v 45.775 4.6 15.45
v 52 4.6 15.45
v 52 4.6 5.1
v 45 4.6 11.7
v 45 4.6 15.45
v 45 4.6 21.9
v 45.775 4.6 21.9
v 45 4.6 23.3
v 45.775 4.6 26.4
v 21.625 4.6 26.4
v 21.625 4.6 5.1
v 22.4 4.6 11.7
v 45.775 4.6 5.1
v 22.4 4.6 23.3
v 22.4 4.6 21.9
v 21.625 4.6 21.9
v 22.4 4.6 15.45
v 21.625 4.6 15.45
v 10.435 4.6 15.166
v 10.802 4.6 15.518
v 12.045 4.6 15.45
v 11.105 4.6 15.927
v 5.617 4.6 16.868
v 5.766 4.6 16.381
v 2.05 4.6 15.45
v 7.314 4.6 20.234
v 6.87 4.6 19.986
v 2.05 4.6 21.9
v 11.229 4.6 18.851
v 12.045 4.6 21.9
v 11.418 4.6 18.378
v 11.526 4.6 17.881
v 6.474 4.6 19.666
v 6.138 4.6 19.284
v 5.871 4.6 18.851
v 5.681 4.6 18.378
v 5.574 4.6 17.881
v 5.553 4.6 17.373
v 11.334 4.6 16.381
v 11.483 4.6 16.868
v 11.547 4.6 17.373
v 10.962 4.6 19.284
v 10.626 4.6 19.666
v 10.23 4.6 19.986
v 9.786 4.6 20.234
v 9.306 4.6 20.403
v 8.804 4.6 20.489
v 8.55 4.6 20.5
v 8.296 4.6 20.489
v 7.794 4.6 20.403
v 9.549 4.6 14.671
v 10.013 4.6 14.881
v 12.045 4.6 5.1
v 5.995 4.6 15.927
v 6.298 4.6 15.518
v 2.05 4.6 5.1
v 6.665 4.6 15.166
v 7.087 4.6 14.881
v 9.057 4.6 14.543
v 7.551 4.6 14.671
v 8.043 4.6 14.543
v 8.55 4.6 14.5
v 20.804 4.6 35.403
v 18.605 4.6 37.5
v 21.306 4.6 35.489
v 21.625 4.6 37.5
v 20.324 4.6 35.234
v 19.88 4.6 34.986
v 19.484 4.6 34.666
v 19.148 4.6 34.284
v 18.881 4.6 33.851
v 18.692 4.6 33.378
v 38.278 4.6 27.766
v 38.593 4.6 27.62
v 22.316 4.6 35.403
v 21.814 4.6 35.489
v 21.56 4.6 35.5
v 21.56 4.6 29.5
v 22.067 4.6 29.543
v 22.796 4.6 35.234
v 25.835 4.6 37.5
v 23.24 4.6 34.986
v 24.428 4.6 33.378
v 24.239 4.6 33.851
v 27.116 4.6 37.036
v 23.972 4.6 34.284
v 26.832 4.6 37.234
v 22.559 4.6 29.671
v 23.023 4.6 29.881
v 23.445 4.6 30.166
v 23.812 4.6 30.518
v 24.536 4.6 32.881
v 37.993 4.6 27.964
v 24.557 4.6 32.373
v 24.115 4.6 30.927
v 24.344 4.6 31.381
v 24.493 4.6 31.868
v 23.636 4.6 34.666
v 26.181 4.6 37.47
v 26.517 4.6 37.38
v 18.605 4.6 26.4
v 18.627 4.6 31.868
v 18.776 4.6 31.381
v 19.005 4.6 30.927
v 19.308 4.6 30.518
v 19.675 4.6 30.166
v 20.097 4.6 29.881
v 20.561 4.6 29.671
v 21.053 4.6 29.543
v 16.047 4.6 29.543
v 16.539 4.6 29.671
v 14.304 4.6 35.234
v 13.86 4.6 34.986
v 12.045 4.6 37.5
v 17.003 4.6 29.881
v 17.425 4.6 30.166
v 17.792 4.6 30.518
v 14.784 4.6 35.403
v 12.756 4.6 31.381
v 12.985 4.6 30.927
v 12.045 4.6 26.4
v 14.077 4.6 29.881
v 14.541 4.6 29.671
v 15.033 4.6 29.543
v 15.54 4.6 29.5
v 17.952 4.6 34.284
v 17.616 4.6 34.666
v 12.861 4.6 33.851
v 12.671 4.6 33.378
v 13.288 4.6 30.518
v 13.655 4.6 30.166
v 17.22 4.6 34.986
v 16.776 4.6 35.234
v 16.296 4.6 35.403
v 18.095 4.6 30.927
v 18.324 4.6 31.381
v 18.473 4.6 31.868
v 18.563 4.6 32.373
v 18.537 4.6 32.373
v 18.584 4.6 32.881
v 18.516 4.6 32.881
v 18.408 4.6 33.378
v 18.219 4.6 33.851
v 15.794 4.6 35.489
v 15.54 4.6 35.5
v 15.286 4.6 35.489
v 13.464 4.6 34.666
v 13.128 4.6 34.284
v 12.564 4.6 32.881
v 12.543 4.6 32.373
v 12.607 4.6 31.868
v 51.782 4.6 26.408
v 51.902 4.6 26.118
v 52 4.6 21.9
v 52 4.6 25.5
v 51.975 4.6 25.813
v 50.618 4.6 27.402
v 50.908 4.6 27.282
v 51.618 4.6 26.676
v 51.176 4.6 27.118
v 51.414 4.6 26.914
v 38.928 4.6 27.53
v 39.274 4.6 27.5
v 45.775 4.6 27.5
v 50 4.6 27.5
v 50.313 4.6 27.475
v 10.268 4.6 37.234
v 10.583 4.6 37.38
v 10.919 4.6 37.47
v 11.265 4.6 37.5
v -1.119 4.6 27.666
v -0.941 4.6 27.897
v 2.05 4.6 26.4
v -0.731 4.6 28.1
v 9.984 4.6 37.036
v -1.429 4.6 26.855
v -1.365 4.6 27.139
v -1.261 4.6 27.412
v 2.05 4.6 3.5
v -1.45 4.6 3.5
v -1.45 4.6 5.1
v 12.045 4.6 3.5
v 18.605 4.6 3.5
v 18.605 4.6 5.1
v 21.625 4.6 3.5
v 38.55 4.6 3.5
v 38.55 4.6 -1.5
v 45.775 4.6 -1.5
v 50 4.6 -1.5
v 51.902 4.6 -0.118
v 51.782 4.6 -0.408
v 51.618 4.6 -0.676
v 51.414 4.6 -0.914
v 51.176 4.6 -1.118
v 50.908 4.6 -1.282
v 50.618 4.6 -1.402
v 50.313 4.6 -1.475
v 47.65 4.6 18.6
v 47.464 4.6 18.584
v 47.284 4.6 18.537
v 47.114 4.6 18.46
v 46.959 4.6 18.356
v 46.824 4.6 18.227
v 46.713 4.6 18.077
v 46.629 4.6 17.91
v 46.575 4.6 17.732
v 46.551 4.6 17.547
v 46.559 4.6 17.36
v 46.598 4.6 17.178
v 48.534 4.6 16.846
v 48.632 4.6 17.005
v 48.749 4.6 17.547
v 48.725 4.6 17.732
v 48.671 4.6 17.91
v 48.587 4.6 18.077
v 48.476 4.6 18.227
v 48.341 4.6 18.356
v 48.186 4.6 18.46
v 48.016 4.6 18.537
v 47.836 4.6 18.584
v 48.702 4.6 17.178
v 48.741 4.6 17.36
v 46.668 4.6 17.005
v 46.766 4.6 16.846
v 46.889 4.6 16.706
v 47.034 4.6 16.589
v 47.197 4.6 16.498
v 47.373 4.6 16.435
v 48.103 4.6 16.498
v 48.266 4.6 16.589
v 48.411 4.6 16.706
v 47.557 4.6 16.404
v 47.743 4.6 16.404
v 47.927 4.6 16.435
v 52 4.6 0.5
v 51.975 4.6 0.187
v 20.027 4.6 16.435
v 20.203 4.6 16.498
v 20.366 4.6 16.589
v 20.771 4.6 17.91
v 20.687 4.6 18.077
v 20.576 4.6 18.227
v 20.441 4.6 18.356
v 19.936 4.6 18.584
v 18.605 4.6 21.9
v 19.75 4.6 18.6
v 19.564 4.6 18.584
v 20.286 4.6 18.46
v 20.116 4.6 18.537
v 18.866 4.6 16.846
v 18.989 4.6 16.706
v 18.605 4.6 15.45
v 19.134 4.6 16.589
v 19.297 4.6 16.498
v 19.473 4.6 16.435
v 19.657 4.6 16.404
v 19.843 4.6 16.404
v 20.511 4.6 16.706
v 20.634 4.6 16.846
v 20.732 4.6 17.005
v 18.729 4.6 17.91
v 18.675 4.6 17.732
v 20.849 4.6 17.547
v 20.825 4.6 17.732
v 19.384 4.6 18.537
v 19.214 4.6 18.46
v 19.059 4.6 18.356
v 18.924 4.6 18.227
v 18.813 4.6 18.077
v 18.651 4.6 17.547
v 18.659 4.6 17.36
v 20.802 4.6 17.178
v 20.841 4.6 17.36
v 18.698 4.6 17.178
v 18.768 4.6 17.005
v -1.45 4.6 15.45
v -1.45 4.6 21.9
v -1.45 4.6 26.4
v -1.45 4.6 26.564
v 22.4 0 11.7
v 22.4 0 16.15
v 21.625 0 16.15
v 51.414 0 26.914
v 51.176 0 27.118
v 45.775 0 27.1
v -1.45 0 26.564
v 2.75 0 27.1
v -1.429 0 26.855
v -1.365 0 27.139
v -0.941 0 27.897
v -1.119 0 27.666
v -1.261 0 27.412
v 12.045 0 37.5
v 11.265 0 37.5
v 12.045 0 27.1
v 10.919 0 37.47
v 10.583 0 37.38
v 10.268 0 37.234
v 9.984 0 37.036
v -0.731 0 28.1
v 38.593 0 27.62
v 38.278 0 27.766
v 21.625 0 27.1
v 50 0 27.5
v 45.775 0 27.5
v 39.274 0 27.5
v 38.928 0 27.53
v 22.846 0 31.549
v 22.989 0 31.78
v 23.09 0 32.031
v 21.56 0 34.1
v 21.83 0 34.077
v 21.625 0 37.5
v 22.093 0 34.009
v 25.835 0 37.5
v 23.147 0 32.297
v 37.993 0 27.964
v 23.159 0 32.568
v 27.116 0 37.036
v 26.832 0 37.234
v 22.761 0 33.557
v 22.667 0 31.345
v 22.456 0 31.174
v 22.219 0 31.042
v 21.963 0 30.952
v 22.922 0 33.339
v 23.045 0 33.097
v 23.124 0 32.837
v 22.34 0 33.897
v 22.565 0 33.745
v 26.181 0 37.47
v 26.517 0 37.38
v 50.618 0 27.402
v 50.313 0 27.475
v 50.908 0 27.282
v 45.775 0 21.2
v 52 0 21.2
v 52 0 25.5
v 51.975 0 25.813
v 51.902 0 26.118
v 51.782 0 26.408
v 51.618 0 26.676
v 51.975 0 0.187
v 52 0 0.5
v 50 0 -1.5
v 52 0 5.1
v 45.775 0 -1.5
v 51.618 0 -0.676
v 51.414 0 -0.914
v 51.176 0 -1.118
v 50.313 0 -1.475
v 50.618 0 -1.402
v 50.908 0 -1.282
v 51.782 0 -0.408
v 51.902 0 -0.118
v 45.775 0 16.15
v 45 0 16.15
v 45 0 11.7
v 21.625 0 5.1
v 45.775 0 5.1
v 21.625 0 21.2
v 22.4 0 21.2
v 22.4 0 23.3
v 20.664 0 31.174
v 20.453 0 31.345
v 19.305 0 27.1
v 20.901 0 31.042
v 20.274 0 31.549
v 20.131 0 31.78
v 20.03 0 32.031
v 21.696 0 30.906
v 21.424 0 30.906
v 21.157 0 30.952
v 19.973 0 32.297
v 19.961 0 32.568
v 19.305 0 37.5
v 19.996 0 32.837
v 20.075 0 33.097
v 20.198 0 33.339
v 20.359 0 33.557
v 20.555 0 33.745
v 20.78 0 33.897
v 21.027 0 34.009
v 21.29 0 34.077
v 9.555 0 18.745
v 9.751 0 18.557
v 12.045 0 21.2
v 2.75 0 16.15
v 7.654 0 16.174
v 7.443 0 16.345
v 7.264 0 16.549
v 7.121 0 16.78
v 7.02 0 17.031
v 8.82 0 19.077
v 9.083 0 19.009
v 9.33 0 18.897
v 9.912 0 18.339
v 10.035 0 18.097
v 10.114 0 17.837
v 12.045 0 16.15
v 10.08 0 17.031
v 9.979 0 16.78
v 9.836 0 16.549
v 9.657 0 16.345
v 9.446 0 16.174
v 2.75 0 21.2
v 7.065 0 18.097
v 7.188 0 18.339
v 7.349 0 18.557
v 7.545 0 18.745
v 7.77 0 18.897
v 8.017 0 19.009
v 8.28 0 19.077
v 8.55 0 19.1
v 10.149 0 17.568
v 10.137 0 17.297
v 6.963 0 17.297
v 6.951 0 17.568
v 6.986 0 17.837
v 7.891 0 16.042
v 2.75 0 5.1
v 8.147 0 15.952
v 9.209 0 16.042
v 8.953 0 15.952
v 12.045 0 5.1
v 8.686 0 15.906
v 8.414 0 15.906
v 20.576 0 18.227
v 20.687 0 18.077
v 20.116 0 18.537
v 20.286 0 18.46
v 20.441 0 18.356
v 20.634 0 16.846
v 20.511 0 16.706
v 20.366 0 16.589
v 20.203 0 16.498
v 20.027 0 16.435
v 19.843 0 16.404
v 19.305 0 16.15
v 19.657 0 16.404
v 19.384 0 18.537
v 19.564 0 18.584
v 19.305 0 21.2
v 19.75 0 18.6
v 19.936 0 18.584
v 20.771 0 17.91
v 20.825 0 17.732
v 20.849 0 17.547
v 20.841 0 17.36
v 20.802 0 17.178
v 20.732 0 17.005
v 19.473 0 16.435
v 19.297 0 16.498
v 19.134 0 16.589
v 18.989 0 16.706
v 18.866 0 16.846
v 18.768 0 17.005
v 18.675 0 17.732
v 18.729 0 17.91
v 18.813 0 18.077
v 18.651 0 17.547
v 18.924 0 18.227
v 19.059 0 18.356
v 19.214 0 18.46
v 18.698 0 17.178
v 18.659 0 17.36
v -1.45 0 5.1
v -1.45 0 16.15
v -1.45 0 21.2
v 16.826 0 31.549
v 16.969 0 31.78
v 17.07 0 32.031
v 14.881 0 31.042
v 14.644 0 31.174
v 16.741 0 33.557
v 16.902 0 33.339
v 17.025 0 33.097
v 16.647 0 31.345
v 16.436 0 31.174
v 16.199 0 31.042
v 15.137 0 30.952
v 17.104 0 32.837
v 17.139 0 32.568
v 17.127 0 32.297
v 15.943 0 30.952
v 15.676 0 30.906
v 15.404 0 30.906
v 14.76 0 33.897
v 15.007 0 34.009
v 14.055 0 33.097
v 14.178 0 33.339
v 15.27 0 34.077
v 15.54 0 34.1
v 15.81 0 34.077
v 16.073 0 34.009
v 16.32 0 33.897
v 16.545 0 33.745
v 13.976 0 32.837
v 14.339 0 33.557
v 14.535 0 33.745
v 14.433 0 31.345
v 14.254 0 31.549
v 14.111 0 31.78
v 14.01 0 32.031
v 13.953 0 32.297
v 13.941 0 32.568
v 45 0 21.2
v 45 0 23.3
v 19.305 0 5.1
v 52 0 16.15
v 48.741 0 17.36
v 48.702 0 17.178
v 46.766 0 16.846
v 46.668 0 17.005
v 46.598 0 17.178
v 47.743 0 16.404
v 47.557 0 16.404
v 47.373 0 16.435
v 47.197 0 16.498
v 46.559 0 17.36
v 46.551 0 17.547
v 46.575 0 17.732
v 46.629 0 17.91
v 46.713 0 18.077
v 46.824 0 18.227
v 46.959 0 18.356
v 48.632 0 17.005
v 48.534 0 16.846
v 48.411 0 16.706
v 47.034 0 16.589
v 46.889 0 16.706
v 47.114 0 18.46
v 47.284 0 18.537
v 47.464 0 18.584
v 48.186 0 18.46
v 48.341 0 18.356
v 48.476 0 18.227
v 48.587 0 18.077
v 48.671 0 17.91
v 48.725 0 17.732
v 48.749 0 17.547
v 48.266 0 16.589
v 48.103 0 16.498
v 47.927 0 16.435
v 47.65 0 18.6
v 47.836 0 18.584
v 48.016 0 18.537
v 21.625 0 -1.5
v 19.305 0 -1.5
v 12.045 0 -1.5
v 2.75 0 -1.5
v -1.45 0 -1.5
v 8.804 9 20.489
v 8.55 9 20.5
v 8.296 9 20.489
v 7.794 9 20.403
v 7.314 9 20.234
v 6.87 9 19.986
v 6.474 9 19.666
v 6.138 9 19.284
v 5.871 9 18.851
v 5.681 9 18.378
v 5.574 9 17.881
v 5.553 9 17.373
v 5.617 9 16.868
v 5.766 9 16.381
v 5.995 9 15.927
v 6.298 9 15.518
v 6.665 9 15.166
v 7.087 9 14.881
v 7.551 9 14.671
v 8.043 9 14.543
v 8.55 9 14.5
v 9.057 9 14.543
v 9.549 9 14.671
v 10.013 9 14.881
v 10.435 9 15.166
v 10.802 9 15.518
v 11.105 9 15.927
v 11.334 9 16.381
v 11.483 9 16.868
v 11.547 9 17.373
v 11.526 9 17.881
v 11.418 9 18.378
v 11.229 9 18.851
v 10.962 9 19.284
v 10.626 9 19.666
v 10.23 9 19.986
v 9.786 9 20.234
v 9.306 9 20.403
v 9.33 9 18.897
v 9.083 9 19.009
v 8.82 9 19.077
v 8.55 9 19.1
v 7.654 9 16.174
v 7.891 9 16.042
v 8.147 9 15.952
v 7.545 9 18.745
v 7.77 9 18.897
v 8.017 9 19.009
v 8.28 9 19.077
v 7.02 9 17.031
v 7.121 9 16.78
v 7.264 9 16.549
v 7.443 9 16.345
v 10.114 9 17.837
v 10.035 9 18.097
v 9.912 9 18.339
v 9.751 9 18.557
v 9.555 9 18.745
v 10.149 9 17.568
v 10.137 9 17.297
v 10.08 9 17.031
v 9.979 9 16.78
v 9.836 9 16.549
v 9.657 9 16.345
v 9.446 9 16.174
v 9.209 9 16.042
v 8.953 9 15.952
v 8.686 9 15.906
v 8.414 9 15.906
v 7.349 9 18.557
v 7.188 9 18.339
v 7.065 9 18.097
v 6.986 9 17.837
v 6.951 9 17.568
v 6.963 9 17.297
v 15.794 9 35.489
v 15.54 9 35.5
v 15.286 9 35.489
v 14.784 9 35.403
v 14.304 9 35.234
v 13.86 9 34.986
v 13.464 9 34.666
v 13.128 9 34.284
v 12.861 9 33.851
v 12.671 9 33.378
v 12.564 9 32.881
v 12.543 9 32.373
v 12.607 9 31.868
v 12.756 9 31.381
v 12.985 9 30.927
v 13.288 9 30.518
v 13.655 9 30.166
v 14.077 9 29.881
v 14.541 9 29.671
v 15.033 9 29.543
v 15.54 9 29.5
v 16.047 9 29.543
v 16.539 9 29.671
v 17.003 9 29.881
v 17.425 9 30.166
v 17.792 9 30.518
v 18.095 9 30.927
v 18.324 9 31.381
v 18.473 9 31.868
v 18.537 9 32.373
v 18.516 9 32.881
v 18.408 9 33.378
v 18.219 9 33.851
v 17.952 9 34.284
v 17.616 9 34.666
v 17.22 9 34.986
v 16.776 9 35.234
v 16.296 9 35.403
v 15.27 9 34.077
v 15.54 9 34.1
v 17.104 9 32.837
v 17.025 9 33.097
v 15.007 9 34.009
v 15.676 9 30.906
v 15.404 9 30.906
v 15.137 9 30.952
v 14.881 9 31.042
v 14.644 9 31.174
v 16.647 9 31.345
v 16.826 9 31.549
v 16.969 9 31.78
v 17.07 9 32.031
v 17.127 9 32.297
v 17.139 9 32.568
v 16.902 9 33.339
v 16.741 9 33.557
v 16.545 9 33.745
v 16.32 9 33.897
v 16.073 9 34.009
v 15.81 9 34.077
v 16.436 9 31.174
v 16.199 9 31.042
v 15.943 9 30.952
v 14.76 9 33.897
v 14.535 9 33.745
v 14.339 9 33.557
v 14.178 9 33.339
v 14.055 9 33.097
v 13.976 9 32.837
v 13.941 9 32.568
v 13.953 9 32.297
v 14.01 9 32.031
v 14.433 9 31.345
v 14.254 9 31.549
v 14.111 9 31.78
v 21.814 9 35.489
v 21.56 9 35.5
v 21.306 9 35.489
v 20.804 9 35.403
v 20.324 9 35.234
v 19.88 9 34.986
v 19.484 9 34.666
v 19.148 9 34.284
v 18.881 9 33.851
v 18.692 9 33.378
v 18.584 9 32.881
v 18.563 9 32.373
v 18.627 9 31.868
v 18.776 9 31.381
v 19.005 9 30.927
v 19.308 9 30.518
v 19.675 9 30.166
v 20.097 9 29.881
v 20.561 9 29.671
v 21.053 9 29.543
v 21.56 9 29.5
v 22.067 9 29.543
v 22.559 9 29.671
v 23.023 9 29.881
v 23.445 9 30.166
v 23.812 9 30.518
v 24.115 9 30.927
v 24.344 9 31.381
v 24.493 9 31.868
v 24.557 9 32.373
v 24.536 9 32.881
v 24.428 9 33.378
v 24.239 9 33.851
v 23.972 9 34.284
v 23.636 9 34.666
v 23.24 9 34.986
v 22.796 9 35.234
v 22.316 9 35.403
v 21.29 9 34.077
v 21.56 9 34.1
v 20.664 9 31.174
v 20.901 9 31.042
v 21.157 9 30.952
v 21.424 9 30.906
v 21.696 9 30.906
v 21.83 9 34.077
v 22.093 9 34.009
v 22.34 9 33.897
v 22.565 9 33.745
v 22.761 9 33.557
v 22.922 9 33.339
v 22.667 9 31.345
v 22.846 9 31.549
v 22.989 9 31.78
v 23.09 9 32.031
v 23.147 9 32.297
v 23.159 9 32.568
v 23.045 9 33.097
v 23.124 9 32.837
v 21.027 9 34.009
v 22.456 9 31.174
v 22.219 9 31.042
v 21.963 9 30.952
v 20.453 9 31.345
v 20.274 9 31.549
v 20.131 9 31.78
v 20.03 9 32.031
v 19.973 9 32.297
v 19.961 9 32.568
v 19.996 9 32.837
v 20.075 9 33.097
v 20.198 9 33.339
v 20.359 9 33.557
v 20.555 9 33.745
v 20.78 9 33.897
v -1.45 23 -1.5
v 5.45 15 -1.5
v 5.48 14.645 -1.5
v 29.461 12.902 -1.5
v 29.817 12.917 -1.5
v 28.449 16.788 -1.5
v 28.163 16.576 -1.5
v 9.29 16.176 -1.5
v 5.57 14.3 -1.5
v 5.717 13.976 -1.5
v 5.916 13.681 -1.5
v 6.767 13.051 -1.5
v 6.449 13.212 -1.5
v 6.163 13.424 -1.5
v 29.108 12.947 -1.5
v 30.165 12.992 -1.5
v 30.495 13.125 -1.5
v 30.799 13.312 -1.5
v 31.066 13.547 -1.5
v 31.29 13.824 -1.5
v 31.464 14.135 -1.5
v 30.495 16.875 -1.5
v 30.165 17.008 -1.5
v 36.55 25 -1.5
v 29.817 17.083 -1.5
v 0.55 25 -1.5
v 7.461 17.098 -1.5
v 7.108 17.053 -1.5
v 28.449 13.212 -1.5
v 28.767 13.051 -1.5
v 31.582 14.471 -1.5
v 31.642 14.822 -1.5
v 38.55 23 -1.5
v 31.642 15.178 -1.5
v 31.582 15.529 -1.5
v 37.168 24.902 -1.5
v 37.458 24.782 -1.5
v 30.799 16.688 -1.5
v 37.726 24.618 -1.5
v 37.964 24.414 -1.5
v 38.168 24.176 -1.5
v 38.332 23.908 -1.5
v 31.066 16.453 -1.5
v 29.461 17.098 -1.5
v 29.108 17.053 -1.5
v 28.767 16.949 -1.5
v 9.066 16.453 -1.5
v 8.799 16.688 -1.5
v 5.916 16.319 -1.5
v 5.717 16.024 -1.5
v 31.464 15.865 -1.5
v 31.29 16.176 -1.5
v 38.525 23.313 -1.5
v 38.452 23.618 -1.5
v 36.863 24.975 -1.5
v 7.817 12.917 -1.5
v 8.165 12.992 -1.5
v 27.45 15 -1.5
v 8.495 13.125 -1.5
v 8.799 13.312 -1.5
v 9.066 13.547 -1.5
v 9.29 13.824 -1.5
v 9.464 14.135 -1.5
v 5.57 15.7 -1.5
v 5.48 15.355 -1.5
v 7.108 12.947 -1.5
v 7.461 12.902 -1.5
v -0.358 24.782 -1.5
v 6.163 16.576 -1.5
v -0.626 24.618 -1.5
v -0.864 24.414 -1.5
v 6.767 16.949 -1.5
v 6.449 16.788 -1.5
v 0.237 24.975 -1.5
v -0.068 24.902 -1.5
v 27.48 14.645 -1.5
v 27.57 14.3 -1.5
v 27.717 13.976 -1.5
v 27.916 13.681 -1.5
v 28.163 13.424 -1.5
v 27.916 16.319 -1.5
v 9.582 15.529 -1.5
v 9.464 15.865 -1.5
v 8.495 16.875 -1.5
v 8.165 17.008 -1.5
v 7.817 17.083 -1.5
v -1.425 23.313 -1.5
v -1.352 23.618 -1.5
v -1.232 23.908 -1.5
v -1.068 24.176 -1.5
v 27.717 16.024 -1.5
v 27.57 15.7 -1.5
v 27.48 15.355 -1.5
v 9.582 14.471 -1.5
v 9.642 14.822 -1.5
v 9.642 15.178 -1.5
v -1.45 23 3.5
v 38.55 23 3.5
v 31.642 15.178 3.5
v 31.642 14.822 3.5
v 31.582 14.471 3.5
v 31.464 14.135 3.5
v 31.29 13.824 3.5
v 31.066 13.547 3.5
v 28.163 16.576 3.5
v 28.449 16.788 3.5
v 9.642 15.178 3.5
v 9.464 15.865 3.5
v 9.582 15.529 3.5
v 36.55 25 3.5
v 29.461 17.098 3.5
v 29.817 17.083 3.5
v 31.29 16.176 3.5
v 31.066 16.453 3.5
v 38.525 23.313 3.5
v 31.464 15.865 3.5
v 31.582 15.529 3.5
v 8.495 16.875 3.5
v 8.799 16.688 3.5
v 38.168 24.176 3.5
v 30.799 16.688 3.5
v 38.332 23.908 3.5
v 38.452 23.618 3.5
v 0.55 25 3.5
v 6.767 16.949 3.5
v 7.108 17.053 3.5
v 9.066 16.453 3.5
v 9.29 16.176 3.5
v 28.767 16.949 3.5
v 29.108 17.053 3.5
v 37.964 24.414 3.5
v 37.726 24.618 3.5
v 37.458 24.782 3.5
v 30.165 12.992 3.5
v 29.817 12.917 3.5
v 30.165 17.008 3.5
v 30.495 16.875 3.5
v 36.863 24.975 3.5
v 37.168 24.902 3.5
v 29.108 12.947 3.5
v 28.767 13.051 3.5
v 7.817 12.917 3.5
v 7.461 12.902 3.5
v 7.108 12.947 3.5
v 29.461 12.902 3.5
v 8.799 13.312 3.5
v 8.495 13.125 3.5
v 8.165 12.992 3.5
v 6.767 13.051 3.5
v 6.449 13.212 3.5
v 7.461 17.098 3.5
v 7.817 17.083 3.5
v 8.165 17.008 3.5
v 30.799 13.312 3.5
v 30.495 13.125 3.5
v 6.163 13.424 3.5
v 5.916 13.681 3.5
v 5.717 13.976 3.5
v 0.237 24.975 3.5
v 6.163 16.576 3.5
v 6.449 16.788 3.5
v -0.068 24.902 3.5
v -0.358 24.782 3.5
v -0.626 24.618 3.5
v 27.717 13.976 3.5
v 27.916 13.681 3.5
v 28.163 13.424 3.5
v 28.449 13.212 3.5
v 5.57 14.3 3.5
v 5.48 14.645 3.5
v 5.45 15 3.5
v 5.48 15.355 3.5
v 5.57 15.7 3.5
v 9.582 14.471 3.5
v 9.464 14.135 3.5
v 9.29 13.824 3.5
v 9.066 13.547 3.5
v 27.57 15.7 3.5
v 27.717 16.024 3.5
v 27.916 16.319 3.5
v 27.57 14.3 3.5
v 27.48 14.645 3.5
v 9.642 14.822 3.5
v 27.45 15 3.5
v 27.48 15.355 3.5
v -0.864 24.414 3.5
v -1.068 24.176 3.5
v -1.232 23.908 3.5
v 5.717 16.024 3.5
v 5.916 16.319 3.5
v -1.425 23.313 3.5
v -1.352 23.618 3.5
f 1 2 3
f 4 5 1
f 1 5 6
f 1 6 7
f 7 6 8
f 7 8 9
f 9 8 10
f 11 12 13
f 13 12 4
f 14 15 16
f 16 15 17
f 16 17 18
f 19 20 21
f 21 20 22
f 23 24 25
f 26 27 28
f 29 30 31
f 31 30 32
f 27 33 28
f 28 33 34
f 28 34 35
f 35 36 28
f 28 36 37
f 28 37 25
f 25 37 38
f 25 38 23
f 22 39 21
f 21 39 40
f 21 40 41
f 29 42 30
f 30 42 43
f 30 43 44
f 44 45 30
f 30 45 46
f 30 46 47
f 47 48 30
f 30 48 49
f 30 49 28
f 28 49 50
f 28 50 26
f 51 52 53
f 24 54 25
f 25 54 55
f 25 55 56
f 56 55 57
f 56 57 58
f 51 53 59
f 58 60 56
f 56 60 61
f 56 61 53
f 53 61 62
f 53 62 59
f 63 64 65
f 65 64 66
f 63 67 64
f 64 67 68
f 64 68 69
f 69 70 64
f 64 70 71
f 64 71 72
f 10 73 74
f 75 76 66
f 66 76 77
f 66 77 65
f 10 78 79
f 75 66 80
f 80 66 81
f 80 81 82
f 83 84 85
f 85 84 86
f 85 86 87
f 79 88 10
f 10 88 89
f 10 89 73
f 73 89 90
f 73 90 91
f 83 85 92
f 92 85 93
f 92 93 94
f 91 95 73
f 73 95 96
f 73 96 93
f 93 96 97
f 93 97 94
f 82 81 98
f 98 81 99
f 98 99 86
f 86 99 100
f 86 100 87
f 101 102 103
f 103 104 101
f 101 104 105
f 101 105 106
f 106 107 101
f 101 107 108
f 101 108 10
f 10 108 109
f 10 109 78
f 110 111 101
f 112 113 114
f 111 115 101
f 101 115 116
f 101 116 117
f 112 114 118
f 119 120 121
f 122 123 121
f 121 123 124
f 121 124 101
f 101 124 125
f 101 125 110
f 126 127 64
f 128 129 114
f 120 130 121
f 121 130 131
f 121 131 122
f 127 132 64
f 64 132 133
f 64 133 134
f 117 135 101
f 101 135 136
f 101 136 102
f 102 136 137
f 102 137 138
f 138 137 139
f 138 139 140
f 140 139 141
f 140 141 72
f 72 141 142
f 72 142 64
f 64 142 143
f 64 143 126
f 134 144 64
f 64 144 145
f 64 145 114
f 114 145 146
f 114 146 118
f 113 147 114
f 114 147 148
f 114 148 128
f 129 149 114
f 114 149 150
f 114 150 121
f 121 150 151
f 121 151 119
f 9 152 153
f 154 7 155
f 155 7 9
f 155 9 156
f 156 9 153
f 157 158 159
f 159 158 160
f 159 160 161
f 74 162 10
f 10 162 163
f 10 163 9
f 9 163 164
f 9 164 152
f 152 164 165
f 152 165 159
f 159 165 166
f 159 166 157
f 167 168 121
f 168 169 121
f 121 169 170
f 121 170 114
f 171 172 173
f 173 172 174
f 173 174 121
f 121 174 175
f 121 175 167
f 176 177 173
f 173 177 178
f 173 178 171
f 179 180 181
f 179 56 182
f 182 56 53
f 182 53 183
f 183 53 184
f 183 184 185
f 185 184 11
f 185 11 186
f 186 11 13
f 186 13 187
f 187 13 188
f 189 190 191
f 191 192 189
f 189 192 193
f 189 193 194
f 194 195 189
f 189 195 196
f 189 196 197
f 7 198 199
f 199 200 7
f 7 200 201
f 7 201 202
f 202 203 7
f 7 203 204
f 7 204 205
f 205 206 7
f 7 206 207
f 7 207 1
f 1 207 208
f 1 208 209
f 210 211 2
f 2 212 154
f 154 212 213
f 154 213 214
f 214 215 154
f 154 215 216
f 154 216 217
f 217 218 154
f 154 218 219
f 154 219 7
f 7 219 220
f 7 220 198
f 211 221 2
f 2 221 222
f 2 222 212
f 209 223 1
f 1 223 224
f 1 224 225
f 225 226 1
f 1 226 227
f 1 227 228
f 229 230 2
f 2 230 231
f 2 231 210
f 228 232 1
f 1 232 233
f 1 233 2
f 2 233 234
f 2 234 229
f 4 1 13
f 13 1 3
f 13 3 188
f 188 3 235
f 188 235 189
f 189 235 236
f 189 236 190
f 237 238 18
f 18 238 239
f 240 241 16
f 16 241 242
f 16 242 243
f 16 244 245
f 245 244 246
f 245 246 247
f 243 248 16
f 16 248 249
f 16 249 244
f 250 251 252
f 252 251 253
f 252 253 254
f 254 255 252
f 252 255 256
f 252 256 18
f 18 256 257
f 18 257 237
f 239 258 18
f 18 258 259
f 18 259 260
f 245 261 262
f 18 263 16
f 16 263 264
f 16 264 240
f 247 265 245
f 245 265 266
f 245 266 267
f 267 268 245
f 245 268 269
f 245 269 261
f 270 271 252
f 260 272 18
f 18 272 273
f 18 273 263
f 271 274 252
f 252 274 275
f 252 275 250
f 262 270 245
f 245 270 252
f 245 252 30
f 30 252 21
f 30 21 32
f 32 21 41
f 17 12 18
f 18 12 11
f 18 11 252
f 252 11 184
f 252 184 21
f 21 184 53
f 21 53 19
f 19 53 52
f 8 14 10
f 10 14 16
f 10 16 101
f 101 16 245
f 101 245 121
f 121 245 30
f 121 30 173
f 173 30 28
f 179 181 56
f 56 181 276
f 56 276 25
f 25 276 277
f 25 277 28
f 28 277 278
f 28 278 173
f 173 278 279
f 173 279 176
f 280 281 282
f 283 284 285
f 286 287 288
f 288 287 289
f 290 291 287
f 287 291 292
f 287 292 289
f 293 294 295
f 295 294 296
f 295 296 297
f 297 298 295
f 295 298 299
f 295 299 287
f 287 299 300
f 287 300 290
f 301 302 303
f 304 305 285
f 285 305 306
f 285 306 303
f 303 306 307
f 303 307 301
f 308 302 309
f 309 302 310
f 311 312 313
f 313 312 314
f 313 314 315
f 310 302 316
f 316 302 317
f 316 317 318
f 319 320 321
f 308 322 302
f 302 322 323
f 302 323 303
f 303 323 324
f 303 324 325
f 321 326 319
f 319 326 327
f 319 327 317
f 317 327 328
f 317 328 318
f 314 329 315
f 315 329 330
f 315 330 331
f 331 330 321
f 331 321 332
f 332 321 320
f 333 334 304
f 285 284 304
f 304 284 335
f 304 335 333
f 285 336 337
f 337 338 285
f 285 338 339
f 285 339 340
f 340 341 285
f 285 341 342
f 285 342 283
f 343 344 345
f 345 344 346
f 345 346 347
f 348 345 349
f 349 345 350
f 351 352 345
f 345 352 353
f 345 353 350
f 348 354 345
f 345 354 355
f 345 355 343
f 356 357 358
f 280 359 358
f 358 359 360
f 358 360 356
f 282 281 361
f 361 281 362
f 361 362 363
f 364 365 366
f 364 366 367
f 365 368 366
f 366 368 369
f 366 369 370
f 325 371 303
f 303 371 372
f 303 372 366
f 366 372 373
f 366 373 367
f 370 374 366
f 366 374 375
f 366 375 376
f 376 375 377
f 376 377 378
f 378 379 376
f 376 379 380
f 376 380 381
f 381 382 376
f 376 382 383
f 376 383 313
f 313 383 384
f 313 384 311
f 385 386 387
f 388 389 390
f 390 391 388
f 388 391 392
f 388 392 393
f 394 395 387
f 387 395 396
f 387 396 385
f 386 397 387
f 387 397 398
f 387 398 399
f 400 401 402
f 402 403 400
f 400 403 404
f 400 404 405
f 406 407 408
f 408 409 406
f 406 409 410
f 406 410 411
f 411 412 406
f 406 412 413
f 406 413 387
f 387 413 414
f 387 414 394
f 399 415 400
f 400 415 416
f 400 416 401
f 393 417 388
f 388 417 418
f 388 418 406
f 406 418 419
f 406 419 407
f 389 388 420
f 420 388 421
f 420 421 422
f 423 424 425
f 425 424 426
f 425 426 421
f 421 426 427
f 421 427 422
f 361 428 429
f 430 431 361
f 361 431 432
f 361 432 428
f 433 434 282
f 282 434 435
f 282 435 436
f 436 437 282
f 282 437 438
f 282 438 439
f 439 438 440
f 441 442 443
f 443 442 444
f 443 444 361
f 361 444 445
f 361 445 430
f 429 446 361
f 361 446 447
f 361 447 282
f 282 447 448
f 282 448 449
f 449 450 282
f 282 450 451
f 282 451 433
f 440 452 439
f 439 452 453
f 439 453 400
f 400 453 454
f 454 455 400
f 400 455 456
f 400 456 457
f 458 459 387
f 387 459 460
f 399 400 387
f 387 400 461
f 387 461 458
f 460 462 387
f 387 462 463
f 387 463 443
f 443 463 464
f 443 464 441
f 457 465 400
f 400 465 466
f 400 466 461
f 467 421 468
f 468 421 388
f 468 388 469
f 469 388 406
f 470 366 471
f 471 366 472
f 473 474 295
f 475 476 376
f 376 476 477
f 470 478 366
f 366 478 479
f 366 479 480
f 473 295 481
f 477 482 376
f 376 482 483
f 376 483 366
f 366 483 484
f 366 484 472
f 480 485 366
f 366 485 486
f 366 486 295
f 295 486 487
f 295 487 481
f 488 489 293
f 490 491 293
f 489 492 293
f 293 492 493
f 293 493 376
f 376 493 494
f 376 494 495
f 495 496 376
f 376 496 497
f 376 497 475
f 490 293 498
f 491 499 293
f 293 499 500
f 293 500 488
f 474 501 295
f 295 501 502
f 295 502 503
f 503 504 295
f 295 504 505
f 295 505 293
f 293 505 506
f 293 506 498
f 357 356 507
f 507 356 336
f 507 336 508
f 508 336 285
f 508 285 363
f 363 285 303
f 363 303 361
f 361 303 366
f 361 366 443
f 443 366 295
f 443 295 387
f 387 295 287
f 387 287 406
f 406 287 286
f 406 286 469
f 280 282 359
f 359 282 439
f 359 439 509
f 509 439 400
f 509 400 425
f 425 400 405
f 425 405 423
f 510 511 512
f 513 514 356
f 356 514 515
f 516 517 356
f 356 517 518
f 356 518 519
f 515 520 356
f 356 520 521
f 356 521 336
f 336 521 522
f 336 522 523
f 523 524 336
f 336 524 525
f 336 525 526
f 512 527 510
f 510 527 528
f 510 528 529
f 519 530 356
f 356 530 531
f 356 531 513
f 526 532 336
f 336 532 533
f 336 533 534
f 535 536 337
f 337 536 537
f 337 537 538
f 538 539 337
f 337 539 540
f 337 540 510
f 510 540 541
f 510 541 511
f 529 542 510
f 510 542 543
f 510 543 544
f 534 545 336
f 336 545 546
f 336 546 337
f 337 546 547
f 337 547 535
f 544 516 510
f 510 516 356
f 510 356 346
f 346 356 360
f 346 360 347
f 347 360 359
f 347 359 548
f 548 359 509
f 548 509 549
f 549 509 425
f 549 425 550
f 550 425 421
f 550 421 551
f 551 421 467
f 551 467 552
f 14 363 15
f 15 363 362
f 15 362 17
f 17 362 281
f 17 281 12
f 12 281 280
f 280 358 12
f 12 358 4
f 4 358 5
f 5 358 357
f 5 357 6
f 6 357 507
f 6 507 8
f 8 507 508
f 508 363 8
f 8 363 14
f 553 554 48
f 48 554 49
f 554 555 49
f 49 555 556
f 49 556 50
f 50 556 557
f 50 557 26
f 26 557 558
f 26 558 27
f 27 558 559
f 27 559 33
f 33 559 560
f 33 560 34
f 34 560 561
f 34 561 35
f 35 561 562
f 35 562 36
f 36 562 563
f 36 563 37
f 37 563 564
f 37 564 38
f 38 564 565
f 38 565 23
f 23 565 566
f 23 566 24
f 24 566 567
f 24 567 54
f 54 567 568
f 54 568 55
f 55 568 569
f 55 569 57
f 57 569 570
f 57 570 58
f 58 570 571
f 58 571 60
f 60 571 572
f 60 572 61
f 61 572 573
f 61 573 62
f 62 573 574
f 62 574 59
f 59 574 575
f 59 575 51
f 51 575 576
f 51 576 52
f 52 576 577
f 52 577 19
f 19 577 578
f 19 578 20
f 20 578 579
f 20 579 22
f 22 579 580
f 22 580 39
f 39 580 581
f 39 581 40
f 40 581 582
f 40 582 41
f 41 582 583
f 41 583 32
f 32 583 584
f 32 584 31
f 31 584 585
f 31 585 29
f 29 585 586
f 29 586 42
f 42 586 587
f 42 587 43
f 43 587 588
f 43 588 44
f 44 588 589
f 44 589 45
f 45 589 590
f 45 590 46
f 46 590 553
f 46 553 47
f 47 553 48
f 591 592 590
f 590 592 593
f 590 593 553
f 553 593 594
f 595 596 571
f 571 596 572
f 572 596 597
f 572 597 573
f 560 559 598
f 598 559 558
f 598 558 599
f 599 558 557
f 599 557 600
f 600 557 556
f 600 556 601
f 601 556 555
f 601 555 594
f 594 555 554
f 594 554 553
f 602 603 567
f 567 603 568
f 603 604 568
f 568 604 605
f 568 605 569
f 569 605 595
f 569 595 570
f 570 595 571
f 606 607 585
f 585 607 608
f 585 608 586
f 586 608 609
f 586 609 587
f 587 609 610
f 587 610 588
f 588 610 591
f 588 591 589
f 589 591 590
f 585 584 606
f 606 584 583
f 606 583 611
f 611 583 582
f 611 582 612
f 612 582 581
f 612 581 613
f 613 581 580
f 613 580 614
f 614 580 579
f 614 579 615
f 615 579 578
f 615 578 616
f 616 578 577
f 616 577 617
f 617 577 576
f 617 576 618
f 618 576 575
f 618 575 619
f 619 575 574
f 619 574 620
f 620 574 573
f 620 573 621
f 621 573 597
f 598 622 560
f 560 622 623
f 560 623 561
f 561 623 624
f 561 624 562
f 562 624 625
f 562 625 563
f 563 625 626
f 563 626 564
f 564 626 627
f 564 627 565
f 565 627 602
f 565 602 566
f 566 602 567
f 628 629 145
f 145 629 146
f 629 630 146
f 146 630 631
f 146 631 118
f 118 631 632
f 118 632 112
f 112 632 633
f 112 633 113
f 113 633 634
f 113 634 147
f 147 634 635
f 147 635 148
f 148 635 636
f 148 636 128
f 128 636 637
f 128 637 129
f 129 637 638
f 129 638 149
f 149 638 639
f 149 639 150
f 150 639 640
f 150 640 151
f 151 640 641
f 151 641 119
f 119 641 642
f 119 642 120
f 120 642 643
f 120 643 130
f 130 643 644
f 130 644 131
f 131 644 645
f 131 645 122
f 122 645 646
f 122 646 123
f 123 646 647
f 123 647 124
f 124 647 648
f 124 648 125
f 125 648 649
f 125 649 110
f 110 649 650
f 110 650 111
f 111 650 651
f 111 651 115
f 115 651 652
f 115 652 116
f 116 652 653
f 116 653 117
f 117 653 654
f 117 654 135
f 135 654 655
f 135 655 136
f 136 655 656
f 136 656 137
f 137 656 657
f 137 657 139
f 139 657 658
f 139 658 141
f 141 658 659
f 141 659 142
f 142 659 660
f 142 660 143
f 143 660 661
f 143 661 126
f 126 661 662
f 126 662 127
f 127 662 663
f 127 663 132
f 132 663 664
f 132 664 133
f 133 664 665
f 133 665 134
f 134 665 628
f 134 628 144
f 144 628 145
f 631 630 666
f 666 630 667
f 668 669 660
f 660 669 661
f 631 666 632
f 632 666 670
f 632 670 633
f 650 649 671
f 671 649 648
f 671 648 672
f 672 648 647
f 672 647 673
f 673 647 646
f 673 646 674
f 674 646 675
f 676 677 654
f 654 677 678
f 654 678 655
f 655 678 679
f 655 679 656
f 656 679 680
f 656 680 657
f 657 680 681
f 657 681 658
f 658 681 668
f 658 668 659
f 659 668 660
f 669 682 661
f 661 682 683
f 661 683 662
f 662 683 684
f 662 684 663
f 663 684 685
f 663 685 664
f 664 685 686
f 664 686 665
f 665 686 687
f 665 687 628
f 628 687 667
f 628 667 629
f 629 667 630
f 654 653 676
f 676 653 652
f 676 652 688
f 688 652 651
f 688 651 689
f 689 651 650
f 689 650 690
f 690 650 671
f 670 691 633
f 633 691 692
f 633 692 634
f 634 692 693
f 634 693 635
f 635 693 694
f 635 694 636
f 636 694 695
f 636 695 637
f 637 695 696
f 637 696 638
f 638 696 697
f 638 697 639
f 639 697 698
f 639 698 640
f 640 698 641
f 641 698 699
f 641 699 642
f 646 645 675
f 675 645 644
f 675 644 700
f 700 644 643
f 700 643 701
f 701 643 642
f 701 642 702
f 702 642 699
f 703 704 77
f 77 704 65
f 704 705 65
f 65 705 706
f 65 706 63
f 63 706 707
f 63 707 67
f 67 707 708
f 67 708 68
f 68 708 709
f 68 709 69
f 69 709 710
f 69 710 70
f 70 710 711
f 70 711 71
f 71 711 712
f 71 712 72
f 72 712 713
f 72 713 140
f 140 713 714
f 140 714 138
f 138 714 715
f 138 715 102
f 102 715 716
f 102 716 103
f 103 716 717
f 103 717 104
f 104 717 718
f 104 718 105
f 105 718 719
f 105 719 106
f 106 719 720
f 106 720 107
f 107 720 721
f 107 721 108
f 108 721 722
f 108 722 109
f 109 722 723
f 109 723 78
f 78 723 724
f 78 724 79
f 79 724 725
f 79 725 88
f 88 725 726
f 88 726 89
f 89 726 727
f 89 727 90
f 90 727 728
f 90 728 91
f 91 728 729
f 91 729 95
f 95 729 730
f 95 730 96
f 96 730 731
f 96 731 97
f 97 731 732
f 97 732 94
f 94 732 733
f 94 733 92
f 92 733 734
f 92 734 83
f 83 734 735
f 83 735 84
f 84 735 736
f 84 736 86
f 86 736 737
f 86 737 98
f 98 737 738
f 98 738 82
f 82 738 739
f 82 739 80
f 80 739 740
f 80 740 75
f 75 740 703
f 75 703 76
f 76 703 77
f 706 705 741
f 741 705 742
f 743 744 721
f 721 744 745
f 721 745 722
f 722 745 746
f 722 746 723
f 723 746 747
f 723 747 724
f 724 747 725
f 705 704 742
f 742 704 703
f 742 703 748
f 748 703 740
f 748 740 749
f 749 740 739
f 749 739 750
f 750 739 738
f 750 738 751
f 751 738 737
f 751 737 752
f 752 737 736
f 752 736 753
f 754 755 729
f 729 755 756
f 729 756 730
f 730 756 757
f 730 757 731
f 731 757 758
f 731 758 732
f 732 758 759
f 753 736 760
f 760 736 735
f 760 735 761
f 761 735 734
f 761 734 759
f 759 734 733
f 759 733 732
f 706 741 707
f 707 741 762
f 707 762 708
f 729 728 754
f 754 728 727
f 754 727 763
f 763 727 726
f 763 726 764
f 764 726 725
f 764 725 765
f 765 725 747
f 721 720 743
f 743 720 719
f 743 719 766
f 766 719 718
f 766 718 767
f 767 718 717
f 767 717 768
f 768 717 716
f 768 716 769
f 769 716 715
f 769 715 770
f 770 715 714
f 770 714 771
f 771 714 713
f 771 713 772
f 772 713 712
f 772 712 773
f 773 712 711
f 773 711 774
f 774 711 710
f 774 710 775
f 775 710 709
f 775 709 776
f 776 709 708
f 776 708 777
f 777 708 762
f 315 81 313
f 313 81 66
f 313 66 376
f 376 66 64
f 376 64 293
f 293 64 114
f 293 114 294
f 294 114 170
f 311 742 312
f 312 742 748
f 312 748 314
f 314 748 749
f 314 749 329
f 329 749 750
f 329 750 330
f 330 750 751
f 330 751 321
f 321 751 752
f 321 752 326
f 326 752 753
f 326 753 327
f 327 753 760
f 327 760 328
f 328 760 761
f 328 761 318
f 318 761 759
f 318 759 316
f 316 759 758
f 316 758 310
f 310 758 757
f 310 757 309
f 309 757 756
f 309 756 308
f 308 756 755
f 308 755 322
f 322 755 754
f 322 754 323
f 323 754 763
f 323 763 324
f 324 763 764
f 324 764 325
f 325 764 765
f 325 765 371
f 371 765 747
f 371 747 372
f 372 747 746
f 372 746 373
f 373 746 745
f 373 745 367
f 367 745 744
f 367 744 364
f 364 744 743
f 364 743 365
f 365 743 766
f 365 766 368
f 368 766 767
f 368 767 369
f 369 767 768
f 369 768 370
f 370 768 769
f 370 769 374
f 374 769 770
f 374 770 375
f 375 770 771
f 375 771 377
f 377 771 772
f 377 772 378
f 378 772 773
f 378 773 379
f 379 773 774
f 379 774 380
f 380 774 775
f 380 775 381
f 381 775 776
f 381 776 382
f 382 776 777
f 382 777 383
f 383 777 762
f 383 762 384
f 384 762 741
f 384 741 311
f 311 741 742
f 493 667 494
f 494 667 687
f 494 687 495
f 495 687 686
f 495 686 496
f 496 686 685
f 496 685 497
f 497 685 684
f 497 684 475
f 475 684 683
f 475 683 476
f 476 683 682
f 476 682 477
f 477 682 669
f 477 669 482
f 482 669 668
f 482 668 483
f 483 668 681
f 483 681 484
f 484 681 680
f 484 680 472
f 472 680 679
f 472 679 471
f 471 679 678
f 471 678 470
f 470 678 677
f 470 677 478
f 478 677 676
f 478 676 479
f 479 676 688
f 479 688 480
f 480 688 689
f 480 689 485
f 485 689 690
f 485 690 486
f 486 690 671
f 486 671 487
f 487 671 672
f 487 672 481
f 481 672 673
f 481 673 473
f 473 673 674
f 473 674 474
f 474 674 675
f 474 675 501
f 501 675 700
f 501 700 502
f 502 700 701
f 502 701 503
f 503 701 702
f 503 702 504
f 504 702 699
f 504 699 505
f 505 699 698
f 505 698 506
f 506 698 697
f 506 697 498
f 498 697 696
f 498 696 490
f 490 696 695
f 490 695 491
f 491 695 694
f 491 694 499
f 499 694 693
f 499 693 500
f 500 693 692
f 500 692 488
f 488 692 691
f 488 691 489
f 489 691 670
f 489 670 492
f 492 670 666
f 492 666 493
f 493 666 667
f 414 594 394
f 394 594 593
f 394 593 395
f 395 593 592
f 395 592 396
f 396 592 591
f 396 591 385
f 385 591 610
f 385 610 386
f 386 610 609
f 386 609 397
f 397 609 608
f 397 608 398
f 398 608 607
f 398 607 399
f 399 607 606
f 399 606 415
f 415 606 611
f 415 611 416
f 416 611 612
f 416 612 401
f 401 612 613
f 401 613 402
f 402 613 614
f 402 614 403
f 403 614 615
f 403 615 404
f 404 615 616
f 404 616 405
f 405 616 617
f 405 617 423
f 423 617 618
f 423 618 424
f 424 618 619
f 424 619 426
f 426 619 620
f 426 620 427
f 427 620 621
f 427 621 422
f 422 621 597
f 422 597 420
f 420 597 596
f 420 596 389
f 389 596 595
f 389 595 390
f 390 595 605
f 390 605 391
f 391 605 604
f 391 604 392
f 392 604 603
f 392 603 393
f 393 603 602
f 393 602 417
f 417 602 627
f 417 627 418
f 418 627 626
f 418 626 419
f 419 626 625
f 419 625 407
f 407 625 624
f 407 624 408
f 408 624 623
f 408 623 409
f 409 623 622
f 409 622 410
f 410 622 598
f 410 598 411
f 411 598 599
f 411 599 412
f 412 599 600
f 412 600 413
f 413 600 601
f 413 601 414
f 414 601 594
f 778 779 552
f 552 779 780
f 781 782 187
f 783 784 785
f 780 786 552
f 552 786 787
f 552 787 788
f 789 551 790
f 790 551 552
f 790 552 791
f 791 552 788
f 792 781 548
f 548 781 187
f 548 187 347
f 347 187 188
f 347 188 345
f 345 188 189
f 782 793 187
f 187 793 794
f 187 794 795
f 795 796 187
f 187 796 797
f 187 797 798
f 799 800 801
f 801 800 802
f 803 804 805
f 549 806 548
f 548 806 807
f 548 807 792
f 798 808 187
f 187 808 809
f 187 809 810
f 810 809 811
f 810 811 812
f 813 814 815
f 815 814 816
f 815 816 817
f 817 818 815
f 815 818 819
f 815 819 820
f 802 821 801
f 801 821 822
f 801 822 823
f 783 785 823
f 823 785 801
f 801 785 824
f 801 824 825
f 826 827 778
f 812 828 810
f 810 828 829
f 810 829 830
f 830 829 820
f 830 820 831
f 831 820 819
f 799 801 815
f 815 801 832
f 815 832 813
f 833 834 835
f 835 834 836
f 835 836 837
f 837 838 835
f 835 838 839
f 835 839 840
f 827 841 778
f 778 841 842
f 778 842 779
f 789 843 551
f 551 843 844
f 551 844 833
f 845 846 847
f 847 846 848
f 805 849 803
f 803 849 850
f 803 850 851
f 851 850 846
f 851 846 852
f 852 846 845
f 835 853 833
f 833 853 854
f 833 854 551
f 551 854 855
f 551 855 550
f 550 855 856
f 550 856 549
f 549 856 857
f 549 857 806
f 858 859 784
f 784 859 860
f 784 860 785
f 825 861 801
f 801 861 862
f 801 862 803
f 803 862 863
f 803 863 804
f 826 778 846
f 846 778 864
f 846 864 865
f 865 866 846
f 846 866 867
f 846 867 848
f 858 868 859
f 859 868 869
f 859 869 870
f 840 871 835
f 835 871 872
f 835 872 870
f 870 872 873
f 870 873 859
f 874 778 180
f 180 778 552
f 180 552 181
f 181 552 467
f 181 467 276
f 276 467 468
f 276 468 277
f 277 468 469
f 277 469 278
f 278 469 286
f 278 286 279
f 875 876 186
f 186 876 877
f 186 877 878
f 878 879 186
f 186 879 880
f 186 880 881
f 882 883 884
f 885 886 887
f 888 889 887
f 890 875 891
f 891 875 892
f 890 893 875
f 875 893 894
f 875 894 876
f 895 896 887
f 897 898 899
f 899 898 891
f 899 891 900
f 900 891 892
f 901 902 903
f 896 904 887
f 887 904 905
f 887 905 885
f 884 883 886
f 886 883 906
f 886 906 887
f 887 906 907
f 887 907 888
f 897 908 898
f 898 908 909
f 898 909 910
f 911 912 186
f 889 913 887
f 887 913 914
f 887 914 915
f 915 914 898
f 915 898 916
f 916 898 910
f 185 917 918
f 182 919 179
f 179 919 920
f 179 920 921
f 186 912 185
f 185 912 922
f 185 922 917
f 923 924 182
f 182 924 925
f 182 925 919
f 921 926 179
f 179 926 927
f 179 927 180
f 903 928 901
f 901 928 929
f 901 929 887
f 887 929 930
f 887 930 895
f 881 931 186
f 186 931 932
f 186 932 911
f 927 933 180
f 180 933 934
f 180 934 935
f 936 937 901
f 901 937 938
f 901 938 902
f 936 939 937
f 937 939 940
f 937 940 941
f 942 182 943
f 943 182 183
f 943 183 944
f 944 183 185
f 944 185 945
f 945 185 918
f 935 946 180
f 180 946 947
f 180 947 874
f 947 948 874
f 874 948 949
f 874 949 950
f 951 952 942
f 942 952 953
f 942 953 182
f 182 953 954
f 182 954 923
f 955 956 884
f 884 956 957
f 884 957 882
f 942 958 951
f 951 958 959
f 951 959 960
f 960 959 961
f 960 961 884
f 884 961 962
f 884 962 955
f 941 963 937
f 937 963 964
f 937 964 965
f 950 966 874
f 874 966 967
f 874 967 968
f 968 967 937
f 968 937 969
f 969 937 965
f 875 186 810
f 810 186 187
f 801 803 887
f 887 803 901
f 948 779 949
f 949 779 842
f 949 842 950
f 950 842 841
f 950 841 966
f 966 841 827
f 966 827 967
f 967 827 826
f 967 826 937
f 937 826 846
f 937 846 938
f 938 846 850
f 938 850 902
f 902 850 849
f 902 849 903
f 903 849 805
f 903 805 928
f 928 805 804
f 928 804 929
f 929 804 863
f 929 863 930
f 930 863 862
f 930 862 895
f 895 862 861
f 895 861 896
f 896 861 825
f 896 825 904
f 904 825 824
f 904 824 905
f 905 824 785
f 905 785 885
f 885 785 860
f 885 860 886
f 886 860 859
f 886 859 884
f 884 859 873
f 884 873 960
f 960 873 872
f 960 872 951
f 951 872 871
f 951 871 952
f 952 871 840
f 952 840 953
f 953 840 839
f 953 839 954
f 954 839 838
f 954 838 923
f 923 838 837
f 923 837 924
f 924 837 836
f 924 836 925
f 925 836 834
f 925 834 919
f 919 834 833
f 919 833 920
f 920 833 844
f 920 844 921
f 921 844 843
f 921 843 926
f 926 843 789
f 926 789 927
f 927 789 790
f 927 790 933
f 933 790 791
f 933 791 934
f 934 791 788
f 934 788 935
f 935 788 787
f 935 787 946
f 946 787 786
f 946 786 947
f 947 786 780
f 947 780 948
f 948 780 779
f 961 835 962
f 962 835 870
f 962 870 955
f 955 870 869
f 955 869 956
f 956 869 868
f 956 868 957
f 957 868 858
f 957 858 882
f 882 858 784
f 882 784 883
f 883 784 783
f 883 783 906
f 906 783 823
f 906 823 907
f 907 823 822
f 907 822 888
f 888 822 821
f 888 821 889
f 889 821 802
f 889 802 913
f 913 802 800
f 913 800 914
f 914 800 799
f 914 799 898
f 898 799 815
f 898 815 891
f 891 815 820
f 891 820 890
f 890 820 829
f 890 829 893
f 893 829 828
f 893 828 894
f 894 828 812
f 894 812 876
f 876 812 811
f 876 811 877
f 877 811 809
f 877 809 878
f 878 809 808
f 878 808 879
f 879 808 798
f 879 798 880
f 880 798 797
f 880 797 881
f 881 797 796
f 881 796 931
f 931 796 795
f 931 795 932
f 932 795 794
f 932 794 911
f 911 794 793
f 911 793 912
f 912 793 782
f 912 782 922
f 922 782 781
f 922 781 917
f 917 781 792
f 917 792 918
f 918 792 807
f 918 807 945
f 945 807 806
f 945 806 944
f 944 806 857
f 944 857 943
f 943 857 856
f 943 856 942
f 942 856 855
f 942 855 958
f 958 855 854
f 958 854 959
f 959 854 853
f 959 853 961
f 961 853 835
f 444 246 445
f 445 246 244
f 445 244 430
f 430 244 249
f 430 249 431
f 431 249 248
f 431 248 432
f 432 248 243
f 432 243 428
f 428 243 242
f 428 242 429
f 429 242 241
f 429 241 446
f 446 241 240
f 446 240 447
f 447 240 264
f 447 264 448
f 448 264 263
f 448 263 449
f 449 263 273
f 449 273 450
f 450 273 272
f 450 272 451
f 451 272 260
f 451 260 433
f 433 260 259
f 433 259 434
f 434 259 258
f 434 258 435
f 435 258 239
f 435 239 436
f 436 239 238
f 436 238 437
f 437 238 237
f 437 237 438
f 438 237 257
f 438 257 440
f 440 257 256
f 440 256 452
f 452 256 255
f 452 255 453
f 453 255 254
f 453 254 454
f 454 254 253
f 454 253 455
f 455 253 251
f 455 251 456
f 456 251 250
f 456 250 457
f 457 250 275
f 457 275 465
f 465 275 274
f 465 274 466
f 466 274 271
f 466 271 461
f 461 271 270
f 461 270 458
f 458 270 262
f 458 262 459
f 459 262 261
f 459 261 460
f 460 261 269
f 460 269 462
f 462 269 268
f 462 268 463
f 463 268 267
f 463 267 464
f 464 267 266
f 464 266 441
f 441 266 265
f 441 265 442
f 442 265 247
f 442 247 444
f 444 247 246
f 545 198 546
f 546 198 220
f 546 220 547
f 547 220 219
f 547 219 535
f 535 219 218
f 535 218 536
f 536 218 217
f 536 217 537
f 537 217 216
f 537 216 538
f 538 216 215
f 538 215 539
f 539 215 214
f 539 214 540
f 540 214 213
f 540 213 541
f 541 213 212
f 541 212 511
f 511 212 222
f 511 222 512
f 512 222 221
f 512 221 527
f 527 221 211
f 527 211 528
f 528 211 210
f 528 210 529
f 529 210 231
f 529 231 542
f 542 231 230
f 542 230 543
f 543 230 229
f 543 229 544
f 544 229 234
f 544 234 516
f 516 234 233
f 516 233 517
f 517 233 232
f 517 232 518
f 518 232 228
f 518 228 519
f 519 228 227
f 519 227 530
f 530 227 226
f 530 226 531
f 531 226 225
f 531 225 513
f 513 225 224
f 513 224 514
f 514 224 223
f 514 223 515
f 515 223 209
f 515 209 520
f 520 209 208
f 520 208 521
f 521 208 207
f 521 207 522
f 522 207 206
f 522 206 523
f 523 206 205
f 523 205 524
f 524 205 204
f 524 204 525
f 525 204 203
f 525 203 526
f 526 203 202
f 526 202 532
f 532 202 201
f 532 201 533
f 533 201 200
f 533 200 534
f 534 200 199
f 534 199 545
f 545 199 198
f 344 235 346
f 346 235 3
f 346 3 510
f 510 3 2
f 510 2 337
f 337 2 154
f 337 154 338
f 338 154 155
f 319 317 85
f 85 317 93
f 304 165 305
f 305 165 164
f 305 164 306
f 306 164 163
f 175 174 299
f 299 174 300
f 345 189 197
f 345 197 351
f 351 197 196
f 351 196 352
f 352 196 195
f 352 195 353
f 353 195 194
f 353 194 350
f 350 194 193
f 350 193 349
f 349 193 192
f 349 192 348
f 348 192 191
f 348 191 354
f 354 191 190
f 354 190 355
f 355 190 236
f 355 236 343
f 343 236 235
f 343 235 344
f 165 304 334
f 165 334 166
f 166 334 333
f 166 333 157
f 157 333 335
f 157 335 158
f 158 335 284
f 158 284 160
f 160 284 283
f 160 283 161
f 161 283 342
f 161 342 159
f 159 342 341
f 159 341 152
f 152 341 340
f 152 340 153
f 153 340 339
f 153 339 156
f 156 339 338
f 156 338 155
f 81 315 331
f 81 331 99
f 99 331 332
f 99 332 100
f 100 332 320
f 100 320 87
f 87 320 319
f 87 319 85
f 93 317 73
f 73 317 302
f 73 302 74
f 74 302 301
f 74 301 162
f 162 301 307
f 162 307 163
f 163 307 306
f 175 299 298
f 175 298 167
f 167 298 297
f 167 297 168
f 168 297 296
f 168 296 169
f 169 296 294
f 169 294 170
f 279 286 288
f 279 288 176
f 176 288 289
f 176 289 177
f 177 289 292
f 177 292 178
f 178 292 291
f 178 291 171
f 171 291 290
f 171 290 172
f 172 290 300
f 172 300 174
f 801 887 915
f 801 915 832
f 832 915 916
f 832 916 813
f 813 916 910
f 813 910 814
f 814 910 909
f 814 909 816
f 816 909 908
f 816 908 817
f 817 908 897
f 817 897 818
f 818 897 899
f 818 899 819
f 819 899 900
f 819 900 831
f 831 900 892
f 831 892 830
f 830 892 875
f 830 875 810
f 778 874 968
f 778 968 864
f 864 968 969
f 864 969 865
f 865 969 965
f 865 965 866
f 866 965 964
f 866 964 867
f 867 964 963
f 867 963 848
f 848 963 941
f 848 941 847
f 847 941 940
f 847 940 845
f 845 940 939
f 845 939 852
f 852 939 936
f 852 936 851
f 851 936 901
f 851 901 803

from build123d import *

# Parameters (mm, degrees)
SKETCH1_W           = 50
SKETCH1_H           = 35
BOSS_EXTRUDE1_DEPTH = 4.6
SKETCH2_W           = 22.6
SKETCH2_H           = 11.6
CUT_EXTRUDE1_DEPTH  = 62.20588207
SKETCH3_R           = 3
BOSS_EXTRUDE2_DEPTH = 4.4
SKETCH5_W           = 50
SKETCH5_H           = 2.5
BOSS_EXTRUDE3_DEPTH = 4.6
SKETCH6_R           = 1.6
CUT_EXTRUDE2_DEPTH  = 64.144675152
SKETCH7_W           = 50
SKETCH7_H           = 1.5
BOSS_EXTRUDE4_DEPTH = 4.6
SKETCH8_W           = 1.45
SKETCH8_H           = 39
BOSS_EXTRUDE5_DEPTH = 4.6
SKETCH9_W           = 40
SKETCH9_H           = 5
BOSS_EXTRUDE6_DEPTH = 20.4
SKETCH10_R          = 2.1
CUT_EXTRUDE3_DEPTH  = 69.161572752
SKETCH11_R          = 1.1
CUT_EXTRUDE4_DEPTH  = 66.745037836
SKETCH12_W          = 2
SKETCH12_H          = 39
BOSS_EXTRUDE7_DEPTH = 4.6
CUT_EXTRUDE5_DEPTH  = 68.278599867
FILLET1_R           = 2
FILLET2_R           = 2


with BuildPart() as part:
    # Sketch1 → Boss-Extrude1 (new body)
    with BuildSketch(Plane(origin=(0, 0, 0), x_dir=(1, 0, 0), z_dir=(0, 1, 0))):
        with Locations((25, -17.5)):
            Rectangle(SKETCH1_W, SKETCH1_H)
    extrude(amount=BOSS_EXTRUDE1_DEPTH)

    # Sketch2 → Cut-Extrude1 (cut, through all)
    with BuildSketch(Plane(origin=(0, 4.6, 0), x_dir=(1, 0, 0), z_dir=(0, 1, 0))):
        with Locations((33.7, -17.5)):
            Rectangle(SKETCH2_W, SKETCH2_H)
    extrude(amount=-CUT_EXTRUDE1_DEPTH, mode=Mode.SUBTRACT)

    # Sketch3 → Boss-Extrude2 (add)
    with BuildSketch(Plane(origin=(0, 4.6, 0), x_dir=(1, 0, 0), z_dir=(0, 1, 0))):
        with Locations(Location((8.55, -17.5, 0), (0, 0, 270))):
            Circle(SKETCH3_R)
        with Locations(Location((15.54, -32.5, 0), (0, 0, 303.557309762))):
            Circle(SKETCH3_R)
        with Locations(Location((21.56, -32.5, 0), (0, 0, 303.557309762))):
            Circle(SKETCH3_R)
    extrude(amount=BOSS_EXTRUDE2_DEPTH)

    # Sketch5 → Boss-Extrude3 (add)
    with BuildSketch(Plane(origin=(0, 4.6, 0), x_dir=(1, 0, 0), z_dir=(0, 1, 0))):
        with Locations((25, -36.25)):
            Rectangle(SKETCH5_W, SKETCH5_H)
    extrude(amount=-BOSS_EXTRUDE3_DEPTH)

    # Sketch6 → Cut-Extrude2 (cut, through all)
    with BuildSketch(Plane(origin=(0, 9, 0), x_dir=(1, 0, 0), z_dir=(0, 1, 0))):
        with Locations(Location((8.55, -17.5, 0), (0, 0, 270))):
            Circle(SKETCH6_R)
        with Locations(Location((15.54, -32.5, 0), (0, 0, 270))):
            Circle(SKETCH6_R)
        with Locations(Location((21.56, -32.5, 0), (0, 0, 270))):
            Circle(SKETCH6_R)
    extrude(amount=-CUT_EXTRUDE2_DEPTH, mode=Mode.SUBTRACT)

    # Sketch7 → Boss-Extrude4 (add)
    with BuildSketch(Plane(origin=(0, 4.6, 0), x_dir=(1, 0, 0), z_dir=(0, 1, 0))):
        with Locations((25, 0.75)):
            Rectangle(SKETCH7_W, SKETCH7_H)
    extrude(amount=-BOSS_EXTRUDE4_DEPTH)

    # Sketch8 → Boss-Extrude5 (add)
    with BuildSketch(Plane(origin=(0, 4.6, 0), x_dir=(1, 0, 0), z_dir=(0, 1, 0))):
        with Locations((-0.725, -18)):
            Rectangle(SKETCH8_W, SKETCH8_H)
    extrude(amount=-BOSS_EXTRUDE5_DEPTH)

    # Sketch9 → Boss-Extrude6 (add)
    with BuildSketch(Plane(origin=(0, 4.6, 0), x_dir=(1, 0, 0), z_dir=(0, 1, 0))):
        with Locations((18.55, -1)):
            Rectangle(SKETCH9_W, SKETCH9_H)
    extrude(amount=BOSS_EXTRUDE6_DEPTH)

    # Sketch10 → Cut-Extrude3 (cut, through all)
    with BuildSketch(Plane(origin=(0, 0, -1.5), x_dir=(-1, 0, 0), z_dir=(0, 0, -1))):
        with Locations((-29.55, 15)):
            Circle(SKETCH10_R)
        with Locations((-7.55, 15)):
            Circle(SKETCH10_R)
    extrude(amount=-CUT_EXTRUDE3_DEPTH, mode=Mode.SUBTRACT)

    # Sketch11 → Cut-Extrude4 (cut, through all)
    with BuildSketch(Plane(origin=(0, 4.6, 0), x_dir=(1, 0, 0), z_dir=(0, 1, 0))):
        with Locations(Location((47.65, -17.5, 0), (0, 0, 270))):
            Circle(SKETCH11_R)
        with Locations(Location((19.75, -17.5, 0), (0, 0, 270))):
            Circle(SKETCH11_R)
    extrude(amount=-CUT_EXTRUDE4_DEPTH, mode=Mode.SUBTRACT)

    # Sketch12 → Boss-Extrude7 (add)
    with BuildSketch(Plane(origin=(0, 4.6, 0), x_dir=(1, 0, 0), z_dir=(0, 1, 0))):
        with Locations((51, -18)):
            Rectangle(SKETCH12_W, SKETCH12_H)
    extrude(amount=-BOSS_EXTRUDE7_DEPTH)

    # Sketch13 → Cut-Extrude5 (cut, through all)
    with BuildSketch(Plane(origin=(0, 4.6, 0), x_dir=(1, 0, 0), z_dir=(0, 1, 0))):
        Polygon((10.54, -37.5), (-1.45, -27.5), (-1.45, -37.5), align=None)
        Polygon((26.56, -37.5), (38.549602016, -27.5), (52, -27.5), (52, -37.5), align=None)
    extrude(amount=-CUT_EXTRUDE5_DEPTH, mode=Mode.SUBTRACT)

    # Fillet1
    fillet1_edges = [part.edges().sort_by_distance(p)[0] for p in [
        (52, 2.3, -1.5),
        (10.54, 2.3, 37.5),
        (-1.45, 2.3, 27.5),
        (26.56, 2.3, 37.5),
        (38.549602016, 2.3, 27.5),
        (52, 2.3, 27.5),
    ]]
    fillet(fillet1_edges, radius=FILLET1_R)

    # Fillet2
    fillet2_edges = [part.edges().sort_by_distance(p)[0] for p in [
        (-1.45, 25, 1),
        (38.55, 25, 1),
    ]]
    fillet(fillet2_edges, radius=FILLET2_R)


solid = part.part
